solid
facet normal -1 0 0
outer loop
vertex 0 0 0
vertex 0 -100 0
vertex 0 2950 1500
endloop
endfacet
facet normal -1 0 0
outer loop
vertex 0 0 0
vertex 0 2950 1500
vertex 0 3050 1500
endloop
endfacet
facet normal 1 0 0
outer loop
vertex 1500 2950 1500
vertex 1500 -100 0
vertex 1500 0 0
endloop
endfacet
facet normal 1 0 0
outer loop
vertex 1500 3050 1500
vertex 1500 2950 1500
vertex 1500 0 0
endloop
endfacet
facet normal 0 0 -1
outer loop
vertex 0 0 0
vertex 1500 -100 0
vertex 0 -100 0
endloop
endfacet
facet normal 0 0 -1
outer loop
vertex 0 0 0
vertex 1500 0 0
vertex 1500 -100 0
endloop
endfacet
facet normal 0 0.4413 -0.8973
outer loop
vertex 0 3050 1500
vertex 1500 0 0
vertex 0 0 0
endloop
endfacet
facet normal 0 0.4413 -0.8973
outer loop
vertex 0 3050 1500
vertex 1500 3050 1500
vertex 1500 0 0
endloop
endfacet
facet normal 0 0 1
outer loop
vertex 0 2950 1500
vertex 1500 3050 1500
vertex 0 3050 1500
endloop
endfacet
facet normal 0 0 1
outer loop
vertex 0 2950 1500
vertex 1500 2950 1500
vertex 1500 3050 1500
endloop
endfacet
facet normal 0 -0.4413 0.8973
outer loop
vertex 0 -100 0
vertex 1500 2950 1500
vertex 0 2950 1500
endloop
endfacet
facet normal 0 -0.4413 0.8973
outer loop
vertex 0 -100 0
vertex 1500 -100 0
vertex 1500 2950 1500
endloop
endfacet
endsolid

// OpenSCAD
// file: triangle.scad
module triangle(side) {
    polygon([
        [0, 0],
        [0, side],
        [side, 0]
    ]);
}
// file: templates/basic-dims.scad
unit = 1000;

section_width = unit * 1.5;
section_height = unit * 2.5;
section_thickness = unit * 0.1;

rt = sqrt(2);

//  -- Notes --
//  Z is UP
//  X is FORWARD (out of the screen)
// main file
include <./templates/basic-dims.scad>
include <triangle.scad>

overhang = section_thickness/2;
roof_len = section_width * 2 + overhang;
roof_height = section_width;

module roof_sketch() {
    polygon([
        [0, 0],
        [section_thickness, 0],
        [roof_len + section_thickness, roof_height],
        [roof_len, roof_height]
    ]);
}

module roof_piece() {
    translate([0, roof_len, roof_height])
    rotate([-90, 0, -90])
    linear_extrude(section_width)
    roof_sketch();
}

roof_piece();
